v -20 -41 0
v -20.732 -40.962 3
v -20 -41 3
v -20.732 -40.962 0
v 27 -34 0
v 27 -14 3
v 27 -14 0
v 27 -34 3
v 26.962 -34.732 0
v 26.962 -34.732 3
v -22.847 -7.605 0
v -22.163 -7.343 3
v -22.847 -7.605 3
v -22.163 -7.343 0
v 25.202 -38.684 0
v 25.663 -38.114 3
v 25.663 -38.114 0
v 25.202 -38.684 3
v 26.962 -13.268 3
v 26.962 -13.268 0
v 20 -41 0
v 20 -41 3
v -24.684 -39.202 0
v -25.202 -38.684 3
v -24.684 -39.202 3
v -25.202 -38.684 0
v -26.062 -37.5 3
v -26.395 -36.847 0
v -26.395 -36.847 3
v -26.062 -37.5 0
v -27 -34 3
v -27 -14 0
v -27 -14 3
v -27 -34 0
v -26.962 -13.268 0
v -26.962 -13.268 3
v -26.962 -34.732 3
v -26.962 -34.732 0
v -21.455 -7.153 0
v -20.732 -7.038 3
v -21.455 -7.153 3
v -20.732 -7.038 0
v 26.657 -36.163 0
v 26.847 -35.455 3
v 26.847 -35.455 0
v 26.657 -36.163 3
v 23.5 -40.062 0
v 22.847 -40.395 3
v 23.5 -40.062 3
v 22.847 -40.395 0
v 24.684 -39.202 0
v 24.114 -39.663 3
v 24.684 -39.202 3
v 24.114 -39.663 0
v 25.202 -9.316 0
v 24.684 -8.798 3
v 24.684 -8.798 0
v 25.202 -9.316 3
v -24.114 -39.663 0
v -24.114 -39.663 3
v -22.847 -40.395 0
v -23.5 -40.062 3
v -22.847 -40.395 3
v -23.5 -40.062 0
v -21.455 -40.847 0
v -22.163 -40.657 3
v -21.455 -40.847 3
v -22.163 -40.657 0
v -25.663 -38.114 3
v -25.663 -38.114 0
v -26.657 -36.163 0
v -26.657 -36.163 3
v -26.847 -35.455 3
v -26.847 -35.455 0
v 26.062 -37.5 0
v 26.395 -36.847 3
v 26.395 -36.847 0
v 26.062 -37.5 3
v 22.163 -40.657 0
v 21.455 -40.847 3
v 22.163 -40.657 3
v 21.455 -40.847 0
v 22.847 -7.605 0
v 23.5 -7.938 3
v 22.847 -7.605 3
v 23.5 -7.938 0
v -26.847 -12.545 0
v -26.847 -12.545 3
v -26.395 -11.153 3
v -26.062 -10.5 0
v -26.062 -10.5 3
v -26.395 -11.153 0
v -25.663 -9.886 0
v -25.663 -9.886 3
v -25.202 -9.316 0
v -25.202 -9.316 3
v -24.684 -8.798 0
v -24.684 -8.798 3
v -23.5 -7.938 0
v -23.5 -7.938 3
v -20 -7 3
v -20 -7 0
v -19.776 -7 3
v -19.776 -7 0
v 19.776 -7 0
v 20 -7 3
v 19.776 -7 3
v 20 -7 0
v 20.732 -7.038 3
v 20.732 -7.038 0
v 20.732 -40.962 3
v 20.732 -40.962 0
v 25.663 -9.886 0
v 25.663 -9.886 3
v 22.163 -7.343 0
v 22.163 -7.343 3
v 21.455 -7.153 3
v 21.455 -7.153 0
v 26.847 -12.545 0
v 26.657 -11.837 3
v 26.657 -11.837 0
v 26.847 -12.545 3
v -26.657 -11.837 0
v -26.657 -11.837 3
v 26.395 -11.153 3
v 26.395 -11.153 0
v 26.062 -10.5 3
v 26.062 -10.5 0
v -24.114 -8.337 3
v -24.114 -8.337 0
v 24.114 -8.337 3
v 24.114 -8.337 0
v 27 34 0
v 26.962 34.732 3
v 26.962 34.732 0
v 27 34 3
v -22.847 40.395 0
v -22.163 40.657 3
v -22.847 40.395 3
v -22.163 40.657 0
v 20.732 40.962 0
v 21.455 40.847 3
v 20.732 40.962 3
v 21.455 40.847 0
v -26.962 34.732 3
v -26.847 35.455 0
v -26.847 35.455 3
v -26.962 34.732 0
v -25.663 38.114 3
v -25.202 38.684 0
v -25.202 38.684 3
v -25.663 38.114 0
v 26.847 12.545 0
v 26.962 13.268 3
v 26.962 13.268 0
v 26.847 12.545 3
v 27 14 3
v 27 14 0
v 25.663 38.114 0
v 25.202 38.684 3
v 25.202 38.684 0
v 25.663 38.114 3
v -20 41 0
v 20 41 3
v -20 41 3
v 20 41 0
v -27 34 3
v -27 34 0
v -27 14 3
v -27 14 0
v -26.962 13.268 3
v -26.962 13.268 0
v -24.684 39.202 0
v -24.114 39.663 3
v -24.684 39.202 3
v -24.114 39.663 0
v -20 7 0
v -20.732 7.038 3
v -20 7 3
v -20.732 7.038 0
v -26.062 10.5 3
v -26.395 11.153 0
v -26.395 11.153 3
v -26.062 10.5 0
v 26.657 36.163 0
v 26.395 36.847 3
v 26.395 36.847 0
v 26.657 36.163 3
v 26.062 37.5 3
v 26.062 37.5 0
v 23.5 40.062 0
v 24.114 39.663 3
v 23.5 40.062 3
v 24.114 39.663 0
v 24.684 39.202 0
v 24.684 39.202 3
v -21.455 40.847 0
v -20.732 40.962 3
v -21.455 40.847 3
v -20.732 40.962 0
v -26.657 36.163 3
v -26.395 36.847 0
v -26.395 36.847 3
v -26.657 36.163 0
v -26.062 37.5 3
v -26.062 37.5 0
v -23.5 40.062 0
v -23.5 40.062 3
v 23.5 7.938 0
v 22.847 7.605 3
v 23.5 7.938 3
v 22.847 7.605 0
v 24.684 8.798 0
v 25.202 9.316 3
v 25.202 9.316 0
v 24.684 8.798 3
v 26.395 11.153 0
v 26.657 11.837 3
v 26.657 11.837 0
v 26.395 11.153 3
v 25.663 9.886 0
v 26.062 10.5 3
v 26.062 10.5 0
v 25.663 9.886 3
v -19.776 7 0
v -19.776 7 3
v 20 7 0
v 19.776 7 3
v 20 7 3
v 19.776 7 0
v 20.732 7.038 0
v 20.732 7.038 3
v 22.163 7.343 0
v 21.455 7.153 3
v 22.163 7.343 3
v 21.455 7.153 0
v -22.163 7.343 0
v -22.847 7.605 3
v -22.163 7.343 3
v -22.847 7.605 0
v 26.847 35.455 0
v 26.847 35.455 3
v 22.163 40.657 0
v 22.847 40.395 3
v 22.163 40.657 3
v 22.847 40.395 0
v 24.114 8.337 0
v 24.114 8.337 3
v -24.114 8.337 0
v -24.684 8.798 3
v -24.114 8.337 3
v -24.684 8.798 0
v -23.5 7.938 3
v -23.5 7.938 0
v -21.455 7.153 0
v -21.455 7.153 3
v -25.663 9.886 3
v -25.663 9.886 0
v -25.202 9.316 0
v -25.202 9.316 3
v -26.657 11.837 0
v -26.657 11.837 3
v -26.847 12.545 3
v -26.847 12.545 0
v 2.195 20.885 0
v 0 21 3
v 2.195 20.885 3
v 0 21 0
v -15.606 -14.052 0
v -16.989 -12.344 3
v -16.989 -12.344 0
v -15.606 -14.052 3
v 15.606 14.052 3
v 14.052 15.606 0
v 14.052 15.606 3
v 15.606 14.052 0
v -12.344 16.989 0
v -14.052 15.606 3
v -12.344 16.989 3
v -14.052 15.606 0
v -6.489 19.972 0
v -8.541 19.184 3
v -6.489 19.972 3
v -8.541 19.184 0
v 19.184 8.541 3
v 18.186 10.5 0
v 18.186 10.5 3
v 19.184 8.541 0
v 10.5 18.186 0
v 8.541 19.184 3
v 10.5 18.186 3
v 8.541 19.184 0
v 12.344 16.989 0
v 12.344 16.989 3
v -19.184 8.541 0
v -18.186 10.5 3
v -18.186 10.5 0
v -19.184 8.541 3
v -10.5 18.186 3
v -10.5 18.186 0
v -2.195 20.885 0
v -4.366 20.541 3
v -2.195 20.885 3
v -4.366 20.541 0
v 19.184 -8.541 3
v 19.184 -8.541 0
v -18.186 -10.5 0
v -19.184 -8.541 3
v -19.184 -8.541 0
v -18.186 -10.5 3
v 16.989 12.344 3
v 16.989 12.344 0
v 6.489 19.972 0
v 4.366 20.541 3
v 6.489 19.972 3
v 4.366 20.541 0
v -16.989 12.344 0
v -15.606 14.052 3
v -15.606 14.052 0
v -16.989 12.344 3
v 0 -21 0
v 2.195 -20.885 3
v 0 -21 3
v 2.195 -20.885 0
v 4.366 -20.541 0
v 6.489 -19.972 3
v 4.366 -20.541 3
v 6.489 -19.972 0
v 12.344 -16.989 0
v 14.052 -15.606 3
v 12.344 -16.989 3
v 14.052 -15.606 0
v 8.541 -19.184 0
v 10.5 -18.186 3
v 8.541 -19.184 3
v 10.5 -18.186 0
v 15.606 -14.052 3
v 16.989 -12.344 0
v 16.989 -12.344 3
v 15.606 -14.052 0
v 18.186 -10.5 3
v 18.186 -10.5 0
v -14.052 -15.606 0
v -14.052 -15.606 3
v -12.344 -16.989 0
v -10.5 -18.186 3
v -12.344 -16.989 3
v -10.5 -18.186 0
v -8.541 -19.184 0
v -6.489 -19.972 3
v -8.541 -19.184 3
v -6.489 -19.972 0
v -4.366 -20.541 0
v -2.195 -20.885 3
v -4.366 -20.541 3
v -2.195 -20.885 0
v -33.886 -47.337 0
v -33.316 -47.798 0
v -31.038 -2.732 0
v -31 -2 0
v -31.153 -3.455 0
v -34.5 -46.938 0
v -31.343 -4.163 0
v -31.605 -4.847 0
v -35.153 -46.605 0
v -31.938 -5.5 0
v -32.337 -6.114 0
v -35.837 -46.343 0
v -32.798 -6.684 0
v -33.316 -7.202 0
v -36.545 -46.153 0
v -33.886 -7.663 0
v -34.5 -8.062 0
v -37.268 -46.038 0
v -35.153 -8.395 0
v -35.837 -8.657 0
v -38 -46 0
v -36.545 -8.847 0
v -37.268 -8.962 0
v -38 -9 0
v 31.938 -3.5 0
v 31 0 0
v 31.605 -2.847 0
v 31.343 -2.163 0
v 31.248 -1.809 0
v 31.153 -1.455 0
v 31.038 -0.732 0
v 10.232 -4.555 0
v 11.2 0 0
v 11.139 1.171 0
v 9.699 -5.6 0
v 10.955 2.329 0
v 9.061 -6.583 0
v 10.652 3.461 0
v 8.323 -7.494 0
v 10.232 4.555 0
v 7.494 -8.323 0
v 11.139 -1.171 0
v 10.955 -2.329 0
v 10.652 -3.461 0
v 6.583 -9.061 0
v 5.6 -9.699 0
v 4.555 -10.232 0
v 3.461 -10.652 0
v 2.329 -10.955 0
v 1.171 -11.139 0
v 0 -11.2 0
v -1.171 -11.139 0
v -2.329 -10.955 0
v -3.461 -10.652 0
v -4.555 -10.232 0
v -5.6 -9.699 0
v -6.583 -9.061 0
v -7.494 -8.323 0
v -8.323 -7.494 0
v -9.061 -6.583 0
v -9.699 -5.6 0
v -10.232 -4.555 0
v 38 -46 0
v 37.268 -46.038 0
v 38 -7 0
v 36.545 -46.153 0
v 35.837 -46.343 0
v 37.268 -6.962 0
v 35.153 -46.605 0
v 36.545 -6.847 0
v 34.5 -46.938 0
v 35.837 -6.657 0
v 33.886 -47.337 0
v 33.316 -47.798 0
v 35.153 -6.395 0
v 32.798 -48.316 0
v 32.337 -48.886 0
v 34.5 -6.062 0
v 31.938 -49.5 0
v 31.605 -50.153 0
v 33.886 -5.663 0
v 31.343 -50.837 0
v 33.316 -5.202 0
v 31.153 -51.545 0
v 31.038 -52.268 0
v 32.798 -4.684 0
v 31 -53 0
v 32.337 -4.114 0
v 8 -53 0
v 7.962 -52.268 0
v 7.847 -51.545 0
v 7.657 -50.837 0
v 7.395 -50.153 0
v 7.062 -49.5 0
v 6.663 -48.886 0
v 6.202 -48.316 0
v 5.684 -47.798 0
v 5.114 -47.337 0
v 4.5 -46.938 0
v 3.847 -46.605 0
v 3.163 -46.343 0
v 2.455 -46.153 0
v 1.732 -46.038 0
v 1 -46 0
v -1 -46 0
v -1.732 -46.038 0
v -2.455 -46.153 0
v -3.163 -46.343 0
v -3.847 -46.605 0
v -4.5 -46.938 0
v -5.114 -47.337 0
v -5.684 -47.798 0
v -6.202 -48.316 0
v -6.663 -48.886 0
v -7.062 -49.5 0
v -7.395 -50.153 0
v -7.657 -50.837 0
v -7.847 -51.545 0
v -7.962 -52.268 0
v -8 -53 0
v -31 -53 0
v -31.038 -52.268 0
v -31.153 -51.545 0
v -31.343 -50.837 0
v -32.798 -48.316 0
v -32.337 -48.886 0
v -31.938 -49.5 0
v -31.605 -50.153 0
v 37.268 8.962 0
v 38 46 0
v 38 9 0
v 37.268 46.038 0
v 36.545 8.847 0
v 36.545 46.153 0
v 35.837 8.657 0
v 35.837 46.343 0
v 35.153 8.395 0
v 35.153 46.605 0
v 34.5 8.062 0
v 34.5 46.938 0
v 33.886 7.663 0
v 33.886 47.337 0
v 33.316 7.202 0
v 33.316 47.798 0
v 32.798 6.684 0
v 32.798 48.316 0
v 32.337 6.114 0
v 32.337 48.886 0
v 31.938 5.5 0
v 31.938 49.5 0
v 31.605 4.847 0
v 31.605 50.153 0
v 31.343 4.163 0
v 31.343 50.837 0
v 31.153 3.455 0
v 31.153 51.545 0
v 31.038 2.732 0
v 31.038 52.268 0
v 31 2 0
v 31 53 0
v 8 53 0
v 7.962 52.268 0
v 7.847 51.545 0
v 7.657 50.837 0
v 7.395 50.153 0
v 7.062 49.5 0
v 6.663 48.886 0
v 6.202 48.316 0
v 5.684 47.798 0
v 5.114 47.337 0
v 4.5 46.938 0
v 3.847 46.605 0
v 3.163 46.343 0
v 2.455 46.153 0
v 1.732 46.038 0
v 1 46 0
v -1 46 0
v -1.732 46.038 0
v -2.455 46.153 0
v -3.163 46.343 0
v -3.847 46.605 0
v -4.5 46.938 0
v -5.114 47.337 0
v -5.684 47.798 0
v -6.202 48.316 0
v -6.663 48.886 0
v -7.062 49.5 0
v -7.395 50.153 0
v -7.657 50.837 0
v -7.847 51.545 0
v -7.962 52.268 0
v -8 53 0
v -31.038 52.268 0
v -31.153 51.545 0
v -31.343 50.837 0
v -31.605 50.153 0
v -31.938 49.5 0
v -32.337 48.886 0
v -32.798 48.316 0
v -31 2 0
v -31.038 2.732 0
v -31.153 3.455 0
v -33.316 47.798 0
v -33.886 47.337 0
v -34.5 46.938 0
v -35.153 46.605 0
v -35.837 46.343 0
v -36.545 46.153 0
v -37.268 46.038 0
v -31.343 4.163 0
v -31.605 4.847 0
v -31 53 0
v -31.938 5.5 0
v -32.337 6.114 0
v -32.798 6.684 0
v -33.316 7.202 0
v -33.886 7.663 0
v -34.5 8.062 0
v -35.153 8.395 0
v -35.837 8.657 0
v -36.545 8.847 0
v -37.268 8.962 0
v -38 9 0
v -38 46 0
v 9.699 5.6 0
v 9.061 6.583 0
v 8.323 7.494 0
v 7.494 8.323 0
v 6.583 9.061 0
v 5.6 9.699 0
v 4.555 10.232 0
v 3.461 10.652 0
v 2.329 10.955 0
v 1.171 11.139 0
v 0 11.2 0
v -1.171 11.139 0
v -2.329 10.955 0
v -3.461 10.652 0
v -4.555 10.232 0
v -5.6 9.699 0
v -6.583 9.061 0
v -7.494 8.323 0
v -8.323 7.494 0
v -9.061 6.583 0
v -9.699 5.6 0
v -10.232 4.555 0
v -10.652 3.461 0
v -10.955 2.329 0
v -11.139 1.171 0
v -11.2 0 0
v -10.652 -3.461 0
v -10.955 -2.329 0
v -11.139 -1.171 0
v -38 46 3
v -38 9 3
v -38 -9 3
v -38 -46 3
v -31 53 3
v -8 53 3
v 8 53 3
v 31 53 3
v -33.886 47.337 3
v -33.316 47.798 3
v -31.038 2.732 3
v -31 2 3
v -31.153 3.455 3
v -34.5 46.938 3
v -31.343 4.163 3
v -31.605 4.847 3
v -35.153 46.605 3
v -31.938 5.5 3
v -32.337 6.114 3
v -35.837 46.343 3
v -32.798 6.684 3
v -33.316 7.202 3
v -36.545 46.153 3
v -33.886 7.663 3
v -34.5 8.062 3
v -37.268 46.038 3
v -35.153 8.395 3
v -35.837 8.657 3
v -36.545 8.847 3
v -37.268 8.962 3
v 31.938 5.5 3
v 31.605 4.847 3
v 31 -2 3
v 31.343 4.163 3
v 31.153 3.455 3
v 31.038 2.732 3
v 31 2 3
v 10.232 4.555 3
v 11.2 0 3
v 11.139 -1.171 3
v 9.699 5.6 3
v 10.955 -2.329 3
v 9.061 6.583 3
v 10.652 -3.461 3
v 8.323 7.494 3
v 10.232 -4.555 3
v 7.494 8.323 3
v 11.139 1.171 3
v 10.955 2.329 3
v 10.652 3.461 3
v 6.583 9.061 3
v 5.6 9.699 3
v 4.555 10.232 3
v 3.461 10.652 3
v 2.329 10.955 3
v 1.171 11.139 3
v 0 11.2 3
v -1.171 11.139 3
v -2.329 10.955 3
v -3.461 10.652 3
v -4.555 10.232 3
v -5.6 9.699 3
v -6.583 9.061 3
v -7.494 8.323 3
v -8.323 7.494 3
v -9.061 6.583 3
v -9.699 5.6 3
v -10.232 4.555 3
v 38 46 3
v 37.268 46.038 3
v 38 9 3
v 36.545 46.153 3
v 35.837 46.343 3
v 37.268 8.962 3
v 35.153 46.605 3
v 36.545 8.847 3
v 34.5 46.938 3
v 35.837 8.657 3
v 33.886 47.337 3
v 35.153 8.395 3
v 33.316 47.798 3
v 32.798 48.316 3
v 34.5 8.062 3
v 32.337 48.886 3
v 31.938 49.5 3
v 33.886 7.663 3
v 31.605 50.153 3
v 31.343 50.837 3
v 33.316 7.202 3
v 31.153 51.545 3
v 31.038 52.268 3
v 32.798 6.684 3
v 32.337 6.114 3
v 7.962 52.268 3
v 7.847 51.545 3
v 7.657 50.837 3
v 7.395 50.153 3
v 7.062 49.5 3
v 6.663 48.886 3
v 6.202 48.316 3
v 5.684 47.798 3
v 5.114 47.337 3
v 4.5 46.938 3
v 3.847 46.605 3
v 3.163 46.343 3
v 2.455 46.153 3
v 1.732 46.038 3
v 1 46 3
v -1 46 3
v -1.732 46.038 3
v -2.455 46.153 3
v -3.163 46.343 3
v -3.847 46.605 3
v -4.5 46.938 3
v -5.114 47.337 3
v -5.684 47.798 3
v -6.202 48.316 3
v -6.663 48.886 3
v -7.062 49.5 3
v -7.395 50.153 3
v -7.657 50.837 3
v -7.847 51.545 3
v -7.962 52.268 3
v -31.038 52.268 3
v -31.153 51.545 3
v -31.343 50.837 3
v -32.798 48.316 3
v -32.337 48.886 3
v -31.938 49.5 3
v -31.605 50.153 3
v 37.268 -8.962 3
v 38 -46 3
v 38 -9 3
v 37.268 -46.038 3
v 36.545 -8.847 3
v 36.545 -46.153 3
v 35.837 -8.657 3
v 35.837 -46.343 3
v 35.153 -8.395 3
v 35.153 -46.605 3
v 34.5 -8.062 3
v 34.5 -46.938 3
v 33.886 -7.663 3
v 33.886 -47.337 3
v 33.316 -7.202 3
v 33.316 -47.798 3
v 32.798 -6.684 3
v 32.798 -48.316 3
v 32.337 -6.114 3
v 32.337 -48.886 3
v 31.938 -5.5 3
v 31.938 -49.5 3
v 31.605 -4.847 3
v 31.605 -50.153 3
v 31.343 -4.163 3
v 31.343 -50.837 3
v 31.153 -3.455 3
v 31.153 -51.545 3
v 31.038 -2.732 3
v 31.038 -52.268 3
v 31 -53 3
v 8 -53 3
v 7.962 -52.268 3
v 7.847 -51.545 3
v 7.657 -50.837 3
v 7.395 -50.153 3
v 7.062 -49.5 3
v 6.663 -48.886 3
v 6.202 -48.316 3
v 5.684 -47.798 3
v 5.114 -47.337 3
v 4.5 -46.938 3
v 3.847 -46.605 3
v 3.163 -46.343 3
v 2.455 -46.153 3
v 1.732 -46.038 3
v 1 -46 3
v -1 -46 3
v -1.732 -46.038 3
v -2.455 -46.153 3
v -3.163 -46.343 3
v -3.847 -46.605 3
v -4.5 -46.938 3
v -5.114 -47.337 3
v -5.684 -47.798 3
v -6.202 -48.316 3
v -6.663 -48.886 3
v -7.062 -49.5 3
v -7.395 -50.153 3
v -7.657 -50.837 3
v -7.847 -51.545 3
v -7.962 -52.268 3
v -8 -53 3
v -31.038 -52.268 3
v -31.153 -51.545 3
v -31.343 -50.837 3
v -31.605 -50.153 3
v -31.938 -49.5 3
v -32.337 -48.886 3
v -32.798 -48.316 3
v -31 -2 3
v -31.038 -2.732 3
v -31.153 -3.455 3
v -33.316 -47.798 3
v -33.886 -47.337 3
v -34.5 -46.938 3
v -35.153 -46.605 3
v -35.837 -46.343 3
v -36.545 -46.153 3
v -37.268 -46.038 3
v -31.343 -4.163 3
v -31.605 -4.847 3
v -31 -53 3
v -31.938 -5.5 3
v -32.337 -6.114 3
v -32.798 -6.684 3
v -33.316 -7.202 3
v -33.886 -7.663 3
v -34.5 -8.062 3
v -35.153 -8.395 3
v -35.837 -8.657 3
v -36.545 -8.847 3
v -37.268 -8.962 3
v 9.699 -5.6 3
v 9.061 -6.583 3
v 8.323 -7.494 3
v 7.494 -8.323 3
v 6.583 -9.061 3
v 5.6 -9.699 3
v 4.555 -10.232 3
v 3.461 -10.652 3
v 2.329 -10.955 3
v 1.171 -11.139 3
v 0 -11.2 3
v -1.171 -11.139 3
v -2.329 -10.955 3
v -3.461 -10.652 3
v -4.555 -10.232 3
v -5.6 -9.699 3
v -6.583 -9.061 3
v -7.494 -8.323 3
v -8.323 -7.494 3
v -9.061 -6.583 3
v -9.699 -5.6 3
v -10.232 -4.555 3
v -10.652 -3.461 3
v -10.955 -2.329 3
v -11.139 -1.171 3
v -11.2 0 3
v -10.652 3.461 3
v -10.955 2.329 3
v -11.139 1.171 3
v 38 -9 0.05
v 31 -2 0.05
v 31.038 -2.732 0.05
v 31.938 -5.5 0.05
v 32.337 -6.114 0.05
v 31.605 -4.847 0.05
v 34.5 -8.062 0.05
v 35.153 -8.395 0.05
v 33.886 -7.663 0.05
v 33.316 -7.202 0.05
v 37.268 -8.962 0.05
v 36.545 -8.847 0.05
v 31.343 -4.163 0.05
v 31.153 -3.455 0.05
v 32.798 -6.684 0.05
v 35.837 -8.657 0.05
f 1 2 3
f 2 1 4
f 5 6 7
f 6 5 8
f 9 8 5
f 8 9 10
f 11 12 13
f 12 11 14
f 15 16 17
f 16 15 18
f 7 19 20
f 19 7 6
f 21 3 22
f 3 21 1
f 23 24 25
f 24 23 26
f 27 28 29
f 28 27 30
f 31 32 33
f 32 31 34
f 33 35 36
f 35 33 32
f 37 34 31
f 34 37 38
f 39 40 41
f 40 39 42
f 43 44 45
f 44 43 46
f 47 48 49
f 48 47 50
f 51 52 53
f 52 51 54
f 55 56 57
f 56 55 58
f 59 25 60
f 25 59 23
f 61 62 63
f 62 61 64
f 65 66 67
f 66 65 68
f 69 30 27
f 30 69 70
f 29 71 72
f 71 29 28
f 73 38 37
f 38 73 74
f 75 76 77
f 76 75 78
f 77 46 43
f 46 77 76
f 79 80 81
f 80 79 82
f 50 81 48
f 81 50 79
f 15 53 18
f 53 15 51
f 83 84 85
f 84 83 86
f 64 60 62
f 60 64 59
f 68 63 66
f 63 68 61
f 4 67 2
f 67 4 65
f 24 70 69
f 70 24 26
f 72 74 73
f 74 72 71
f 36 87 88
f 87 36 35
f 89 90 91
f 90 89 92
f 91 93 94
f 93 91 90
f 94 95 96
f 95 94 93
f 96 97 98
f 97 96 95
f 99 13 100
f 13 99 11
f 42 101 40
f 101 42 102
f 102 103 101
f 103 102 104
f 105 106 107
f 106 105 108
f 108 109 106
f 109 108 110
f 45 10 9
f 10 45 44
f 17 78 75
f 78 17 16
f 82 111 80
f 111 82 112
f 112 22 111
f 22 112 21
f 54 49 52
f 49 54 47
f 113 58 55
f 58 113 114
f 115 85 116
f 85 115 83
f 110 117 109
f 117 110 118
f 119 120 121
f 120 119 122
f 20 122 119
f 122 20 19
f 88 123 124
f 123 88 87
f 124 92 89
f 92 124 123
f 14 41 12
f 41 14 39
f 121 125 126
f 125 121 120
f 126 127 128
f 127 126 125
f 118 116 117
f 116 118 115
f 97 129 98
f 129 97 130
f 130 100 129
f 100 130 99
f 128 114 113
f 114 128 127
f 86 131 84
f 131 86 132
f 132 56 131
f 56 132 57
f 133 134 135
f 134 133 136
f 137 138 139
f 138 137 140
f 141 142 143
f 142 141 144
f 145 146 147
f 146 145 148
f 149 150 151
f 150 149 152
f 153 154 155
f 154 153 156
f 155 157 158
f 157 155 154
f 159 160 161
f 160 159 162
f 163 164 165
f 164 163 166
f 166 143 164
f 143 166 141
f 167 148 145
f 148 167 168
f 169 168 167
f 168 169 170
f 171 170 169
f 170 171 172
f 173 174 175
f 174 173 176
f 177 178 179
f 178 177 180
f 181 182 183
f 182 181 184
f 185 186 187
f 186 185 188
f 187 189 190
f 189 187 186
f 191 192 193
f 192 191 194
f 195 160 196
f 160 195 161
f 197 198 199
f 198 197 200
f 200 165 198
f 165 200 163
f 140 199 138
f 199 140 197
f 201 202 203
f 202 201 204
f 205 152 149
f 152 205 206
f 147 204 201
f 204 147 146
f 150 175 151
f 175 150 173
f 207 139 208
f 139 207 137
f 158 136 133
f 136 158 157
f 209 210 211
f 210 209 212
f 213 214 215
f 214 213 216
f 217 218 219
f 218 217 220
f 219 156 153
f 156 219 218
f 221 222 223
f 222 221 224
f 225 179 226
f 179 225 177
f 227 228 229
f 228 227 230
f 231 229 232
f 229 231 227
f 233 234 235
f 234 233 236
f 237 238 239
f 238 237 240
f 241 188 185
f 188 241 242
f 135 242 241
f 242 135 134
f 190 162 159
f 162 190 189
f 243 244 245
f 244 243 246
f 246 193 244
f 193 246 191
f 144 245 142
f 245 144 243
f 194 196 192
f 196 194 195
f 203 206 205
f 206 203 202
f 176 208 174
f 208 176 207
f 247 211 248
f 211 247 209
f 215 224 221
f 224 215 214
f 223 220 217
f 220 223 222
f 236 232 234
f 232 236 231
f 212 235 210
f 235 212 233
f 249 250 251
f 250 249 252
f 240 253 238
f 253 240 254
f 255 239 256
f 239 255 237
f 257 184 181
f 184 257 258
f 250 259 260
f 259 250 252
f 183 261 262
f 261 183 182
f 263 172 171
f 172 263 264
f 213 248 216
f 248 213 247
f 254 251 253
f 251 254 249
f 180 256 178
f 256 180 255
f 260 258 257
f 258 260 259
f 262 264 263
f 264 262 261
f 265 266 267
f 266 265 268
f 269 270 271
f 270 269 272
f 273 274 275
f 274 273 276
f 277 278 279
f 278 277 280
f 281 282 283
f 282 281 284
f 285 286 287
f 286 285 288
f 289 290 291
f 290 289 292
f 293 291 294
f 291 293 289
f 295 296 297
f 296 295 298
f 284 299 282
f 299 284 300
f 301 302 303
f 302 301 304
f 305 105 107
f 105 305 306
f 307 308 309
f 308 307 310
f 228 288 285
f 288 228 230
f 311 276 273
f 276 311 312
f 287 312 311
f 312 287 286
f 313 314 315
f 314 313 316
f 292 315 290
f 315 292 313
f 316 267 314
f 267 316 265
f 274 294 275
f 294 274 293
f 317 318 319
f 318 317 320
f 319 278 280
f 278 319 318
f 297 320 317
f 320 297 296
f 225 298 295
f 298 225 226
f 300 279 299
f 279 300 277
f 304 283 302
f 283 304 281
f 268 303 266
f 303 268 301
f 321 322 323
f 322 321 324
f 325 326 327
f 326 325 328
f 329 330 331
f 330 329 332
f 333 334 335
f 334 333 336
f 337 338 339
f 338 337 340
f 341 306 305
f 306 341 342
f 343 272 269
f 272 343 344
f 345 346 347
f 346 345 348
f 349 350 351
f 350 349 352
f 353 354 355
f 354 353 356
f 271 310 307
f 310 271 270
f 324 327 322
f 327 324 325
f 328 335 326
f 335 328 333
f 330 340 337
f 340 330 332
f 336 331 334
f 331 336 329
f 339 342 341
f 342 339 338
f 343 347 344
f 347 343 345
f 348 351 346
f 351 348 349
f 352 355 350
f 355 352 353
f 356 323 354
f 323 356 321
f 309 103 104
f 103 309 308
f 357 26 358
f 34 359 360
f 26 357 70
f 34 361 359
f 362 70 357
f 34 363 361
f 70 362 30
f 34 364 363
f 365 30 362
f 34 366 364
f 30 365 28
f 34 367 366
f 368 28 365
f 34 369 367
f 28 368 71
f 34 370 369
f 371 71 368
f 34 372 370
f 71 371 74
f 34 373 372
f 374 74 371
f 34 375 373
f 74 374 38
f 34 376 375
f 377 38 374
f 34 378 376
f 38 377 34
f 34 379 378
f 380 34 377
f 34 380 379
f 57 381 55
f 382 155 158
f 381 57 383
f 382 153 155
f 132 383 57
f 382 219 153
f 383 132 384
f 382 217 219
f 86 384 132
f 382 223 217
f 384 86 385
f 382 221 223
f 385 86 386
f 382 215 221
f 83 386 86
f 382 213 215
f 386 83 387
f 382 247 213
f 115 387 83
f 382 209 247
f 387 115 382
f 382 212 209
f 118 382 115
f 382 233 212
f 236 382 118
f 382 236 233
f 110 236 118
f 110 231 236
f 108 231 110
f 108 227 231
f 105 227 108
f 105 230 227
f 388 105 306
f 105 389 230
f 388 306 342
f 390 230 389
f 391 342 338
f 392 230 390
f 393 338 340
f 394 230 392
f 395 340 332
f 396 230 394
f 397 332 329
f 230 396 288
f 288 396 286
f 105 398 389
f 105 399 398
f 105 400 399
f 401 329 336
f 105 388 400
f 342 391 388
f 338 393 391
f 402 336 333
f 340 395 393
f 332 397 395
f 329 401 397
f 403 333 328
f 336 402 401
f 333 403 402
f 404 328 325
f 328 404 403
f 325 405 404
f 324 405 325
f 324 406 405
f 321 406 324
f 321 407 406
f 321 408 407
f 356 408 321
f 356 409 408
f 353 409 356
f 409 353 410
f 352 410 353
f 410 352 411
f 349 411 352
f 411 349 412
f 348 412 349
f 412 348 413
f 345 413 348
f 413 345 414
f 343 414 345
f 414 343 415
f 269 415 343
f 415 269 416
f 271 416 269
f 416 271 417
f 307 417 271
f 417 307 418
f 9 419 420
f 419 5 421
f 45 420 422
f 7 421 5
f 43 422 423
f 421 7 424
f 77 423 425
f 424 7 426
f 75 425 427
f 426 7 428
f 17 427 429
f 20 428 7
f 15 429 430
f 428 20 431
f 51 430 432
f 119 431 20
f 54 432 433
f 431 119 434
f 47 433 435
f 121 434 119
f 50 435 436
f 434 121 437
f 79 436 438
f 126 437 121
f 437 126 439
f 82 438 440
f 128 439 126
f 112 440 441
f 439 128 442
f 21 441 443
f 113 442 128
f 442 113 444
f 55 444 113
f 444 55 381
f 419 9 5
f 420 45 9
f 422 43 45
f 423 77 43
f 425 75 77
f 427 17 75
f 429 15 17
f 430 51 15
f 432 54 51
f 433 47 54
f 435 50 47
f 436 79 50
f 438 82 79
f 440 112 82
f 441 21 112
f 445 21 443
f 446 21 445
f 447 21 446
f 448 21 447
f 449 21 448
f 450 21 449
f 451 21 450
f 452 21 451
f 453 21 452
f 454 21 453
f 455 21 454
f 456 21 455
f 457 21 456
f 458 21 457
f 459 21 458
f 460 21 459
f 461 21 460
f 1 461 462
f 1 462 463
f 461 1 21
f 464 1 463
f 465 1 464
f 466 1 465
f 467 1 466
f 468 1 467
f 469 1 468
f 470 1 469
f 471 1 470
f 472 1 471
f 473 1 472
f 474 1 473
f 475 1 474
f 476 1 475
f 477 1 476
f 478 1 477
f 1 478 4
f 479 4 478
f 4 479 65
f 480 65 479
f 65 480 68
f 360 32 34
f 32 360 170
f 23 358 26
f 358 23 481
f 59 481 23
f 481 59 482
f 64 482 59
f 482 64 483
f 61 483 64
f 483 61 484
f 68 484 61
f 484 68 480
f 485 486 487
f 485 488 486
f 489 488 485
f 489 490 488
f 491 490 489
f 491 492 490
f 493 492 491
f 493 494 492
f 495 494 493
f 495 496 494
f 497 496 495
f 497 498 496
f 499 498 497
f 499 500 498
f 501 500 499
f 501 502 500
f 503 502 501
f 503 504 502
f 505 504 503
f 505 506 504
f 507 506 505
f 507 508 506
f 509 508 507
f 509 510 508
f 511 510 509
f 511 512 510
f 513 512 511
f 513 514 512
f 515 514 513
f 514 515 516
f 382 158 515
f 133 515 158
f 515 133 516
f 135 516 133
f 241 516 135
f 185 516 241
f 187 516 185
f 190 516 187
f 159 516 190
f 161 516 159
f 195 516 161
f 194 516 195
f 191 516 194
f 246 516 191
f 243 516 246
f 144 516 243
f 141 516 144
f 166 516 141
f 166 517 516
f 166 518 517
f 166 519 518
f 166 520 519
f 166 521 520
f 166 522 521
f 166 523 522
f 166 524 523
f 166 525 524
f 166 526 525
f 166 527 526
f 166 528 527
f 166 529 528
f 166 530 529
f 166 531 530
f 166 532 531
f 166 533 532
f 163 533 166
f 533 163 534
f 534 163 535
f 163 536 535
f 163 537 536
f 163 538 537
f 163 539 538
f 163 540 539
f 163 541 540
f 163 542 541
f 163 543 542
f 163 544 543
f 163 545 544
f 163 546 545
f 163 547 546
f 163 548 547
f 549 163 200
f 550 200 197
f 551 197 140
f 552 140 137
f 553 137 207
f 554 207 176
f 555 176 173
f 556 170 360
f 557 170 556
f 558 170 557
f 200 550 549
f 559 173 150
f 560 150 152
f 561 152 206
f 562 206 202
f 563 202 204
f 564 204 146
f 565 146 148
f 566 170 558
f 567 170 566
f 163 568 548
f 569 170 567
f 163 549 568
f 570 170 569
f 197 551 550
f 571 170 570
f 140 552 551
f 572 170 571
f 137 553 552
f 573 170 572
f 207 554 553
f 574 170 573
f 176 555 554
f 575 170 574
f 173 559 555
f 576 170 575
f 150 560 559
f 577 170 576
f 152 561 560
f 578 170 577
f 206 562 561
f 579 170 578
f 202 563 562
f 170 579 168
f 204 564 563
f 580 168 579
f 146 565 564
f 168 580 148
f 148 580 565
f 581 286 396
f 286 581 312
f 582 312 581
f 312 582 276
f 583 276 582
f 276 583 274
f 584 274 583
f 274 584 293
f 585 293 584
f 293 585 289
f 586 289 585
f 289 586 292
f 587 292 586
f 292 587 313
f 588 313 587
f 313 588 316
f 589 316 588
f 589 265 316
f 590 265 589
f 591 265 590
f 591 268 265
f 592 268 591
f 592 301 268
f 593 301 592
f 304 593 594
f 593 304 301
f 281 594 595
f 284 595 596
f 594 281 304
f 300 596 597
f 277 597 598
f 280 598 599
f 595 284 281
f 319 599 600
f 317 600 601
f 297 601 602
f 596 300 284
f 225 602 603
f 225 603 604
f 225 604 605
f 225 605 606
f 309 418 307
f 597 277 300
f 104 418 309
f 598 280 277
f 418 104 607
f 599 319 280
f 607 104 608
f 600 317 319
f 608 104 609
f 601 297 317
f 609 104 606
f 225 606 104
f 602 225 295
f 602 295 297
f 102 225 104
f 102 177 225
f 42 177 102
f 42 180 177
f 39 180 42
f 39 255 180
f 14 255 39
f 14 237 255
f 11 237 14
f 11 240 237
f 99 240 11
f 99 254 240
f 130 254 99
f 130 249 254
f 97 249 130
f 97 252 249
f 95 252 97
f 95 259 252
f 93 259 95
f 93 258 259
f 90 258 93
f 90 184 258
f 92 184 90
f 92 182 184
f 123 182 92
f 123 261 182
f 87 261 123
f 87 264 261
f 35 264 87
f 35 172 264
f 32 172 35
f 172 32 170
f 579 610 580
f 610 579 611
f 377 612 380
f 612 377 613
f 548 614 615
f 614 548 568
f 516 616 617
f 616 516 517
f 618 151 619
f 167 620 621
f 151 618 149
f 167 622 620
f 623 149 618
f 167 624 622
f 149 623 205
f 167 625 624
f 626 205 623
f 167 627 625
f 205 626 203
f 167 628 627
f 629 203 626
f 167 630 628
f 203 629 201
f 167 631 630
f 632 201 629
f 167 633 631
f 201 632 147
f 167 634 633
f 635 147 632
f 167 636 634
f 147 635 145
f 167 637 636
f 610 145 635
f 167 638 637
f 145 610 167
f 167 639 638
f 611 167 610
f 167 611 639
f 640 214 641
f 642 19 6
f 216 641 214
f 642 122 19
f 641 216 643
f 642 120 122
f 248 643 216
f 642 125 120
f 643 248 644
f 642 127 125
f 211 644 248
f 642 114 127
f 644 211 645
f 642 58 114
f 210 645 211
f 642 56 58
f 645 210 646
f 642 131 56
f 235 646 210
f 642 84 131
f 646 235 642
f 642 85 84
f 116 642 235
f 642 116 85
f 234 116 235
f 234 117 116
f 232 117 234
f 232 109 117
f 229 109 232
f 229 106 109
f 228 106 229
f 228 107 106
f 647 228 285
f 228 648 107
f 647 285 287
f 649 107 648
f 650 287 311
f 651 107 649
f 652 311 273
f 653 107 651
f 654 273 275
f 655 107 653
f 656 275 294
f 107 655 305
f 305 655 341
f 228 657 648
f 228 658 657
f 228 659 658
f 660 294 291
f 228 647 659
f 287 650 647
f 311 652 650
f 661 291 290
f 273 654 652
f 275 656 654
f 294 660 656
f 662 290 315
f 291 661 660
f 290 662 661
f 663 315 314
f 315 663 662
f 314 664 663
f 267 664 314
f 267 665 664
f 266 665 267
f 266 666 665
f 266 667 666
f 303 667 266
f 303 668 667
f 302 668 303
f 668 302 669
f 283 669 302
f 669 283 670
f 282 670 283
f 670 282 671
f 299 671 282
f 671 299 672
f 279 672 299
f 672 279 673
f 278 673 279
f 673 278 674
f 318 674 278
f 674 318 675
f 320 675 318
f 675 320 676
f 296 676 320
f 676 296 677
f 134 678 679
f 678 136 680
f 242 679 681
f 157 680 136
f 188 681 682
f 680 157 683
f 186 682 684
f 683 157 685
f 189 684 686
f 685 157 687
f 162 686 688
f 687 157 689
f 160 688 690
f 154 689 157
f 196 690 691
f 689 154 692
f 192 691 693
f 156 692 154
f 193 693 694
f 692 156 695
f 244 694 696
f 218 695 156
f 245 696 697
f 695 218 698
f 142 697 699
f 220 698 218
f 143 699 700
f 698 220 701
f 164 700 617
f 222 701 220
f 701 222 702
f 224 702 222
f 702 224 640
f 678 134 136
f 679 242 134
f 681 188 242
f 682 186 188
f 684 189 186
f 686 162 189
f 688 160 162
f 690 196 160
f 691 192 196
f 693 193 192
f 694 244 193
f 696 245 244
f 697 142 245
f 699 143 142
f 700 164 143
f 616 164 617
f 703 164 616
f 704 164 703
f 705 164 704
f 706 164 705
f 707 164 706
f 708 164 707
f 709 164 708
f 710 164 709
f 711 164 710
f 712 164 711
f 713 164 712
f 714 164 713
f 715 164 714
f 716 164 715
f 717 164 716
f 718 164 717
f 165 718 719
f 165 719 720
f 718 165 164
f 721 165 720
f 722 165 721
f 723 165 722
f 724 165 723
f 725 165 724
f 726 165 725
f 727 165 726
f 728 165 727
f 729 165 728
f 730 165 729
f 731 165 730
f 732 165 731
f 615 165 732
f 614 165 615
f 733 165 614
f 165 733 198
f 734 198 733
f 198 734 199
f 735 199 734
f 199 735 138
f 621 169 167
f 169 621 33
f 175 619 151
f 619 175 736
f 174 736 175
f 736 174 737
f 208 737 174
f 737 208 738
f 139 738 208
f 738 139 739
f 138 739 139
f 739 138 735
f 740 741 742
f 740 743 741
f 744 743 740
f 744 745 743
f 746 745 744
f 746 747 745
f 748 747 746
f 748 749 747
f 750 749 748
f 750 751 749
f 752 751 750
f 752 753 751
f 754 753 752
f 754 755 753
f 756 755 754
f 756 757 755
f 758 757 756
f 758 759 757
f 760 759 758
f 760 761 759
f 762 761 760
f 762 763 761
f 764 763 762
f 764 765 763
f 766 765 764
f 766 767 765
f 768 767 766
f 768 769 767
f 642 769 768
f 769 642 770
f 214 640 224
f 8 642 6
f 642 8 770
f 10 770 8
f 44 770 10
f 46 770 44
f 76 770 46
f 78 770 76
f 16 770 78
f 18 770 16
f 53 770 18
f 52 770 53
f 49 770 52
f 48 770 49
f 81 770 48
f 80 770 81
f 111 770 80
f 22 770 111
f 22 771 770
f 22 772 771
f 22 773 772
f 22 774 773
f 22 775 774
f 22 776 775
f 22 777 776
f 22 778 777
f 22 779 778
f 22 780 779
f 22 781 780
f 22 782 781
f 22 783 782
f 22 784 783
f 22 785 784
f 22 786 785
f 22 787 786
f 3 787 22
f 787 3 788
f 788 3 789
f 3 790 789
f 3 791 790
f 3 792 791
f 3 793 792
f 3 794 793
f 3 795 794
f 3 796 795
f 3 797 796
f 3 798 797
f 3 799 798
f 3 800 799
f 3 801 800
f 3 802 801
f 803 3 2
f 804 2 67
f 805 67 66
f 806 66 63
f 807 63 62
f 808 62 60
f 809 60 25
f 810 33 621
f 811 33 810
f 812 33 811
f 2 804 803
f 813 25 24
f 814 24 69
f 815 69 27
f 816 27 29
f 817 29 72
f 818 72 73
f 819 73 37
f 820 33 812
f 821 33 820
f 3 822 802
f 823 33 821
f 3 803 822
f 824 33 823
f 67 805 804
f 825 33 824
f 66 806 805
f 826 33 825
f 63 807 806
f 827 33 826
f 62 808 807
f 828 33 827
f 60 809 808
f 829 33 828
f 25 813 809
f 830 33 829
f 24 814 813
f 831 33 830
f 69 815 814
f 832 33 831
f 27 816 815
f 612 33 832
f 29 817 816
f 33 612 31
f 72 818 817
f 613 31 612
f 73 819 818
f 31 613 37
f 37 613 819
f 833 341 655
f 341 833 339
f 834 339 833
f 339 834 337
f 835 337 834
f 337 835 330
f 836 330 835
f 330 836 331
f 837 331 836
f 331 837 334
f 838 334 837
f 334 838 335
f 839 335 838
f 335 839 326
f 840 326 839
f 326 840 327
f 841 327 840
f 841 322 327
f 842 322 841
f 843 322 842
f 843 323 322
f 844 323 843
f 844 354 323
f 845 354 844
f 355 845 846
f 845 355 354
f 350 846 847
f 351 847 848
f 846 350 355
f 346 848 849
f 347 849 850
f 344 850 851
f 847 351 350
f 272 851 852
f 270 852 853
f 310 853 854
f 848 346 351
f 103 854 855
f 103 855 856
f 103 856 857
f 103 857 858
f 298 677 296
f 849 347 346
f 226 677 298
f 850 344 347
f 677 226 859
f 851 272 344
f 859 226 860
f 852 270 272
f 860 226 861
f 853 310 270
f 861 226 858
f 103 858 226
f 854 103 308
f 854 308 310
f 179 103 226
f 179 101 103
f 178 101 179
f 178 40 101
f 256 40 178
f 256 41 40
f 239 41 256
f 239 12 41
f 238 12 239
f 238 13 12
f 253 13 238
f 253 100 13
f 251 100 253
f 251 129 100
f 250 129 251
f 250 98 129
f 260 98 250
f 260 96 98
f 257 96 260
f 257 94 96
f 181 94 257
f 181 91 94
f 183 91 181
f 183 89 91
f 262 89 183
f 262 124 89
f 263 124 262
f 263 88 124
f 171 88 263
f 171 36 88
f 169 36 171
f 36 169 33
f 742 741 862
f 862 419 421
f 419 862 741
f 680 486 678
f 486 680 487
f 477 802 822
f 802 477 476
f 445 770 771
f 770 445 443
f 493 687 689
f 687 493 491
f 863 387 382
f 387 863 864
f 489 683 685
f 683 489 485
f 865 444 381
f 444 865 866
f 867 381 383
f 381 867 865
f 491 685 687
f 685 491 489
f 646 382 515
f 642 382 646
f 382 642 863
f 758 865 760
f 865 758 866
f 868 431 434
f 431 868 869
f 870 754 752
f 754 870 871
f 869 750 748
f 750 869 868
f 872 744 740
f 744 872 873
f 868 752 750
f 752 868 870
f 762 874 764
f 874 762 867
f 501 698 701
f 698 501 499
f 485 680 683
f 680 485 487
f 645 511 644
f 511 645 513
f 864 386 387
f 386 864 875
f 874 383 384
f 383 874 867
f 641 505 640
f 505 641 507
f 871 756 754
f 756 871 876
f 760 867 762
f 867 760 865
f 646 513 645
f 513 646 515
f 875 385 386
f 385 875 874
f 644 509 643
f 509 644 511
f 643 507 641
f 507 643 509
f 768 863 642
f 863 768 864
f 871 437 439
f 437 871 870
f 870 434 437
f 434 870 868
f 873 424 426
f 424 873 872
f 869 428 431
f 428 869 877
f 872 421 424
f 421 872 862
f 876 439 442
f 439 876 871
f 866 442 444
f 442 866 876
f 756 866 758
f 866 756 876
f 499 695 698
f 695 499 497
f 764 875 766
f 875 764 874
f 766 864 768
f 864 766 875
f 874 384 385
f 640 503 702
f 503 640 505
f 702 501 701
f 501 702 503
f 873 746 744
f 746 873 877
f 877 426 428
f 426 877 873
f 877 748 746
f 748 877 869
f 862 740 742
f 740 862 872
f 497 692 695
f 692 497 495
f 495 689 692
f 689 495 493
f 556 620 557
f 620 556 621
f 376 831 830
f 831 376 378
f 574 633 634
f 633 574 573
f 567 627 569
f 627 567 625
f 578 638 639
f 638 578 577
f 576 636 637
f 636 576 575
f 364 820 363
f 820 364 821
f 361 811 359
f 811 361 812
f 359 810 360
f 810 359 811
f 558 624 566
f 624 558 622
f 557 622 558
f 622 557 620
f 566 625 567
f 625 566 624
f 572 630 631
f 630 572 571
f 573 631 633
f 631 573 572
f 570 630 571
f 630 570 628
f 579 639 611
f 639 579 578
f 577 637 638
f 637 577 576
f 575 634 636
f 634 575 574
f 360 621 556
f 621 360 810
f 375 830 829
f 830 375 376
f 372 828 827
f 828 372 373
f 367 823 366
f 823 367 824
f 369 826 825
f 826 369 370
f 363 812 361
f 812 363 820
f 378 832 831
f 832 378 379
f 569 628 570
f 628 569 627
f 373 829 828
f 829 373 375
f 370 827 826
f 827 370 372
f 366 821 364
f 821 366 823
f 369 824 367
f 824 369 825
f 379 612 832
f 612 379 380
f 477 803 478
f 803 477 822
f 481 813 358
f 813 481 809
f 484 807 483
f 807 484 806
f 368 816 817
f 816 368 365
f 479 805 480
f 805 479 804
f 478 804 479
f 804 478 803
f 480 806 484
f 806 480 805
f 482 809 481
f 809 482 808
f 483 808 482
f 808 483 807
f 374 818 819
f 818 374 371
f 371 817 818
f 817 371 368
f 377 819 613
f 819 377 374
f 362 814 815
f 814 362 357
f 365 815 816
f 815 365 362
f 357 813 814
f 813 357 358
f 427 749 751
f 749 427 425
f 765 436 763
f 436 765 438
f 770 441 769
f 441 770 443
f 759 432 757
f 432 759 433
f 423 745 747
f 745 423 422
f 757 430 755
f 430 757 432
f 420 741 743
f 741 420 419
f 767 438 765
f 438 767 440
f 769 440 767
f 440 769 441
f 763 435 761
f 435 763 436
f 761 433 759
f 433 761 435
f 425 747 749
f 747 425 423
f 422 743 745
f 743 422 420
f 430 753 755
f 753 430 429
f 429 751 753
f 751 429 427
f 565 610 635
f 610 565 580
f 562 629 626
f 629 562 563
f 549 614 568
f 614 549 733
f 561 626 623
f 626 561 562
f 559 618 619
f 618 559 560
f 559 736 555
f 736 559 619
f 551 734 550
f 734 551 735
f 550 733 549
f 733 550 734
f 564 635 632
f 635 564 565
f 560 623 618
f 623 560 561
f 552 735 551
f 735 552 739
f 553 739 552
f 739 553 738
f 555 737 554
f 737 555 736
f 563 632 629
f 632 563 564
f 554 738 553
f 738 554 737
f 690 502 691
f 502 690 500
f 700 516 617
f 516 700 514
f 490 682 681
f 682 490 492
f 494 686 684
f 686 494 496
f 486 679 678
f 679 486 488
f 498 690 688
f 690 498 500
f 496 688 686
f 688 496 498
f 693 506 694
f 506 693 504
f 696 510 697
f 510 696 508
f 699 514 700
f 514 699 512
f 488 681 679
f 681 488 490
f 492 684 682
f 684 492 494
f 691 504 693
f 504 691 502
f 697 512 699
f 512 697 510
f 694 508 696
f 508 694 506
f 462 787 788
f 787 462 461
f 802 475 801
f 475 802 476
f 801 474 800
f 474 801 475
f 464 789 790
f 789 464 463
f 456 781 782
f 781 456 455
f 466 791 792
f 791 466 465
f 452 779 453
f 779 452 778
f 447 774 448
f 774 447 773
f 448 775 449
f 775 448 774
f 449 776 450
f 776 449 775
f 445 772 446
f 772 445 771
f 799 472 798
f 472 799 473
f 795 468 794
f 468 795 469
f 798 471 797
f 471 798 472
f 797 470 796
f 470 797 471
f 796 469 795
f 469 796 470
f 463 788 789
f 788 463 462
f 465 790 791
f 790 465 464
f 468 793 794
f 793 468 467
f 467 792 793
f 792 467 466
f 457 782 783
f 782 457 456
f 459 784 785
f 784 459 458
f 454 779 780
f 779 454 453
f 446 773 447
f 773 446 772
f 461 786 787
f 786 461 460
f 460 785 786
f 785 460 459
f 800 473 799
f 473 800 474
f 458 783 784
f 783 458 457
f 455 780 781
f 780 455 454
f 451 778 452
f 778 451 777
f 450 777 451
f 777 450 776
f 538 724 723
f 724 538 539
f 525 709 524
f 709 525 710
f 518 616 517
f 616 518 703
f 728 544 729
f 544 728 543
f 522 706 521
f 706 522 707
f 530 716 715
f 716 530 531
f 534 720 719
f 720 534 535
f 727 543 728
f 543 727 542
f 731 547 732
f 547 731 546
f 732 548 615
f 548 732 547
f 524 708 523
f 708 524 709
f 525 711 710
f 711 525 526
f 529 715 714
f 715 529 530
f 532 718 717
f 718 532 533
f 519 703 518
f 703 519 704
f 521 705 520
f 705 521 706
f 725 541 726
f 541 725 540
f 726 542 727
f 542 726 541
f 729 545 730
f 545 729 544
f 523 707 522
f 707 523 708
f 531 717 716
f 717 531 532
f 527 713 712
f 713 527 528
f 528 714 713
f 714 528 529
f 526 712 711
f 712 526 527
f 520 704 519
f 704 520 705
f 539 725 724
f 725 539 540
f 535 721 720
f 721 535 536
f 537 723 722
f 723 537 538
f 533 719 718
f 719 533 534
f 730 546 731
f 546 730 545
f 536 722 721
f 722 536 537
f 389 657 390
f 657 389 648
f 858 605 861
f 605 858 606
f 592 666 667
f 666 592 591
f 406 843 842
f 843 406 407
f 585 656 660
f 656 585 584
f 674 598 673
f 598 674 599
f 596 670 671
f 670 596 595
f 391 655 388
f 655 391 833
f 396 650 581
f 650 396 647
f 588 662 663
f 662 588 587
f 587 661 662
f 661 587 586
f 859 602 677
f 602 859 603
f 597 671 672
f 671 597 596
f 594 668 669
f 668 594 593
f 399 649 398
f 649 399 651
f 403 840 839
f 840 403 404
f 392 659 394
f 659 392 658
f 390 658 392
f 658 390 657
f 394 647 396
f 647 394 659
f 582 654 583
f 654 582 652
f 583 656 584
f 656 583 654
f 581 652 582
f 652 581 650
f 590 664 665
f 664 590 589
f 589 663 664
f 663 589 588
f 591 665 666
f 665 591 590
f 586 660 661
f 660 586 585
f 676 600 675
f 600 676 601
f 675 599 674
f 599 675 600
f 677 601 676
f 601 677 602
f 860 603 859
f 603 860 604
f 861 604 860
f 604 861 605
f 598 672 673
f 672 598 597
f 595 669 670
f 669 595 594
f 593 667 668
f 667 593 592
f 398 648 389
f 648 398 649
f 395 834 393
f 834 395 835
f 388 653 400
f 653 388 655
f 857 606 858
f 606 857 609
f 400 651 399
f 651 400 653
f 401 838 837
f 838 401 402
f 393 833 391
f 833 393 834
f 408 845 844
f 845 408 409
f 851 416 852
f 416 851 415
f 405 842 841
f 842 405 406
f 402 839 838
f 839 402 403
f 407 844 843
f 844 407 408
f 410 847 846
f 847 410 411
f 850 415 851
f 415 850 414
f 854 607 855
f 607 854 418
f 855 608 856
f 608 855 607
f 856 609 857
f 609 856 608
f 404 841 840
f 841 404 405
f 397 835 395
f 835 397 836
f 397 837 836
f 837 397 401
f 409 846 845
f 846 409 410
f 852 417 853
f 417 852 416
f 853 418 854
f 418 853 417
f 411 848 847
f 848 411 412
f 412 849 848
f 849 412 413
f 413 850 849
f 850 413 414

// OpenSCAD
/* large-filler-bin.scad
 *
 * Copyright (C) Robert B. Ross, 2016
 *
 * This software is released under the Creative Commons
 * Attribution-ShareAlike 4.0 International Public License.
 */

include <./bintools.scad>

/*
 * See above for description of locations variable
 *
 * Dimensions (from Kariko83)
 *   46.5mm tall
 *   48.6mm tall with legs
 *   109.25mm wide
 *   80mm length
 */

rad=7;

difference() {
   roundBoxBottom(xDim=76,yDim=106,ht=3);

   hull() {
      translate([76/2,2,-0.05]) cylinder(r=rad,h=3.1);
      translate([76/2,-2,0.05]) cylinder(r=rad,h=3.1);
   }
   hull() {
      translate([-76/2,2,-0.05]) cylinder(r=rad,h=3.1);
      translate([-76/2,-2,-0.05]) cylinder(r=rad,h=3.1);
   }

   /* corners */
   translate([-76/2,-106/2,-0.05]) cylinder(r=rad,h=3.1);
   translate([76/2,-106/2,-0.05]) cylinder(r=rad,h=3.1);
   translate([-76/2,106/2,-0.05]) cylinder(r=rad,h=3.1);
   translate([76/2,106/2,-0.05]) cylinder(r=rad,h=3.1);

   hull() {
      translate([-1,-106/2,-0.05]) cylinder(r=rad,h=3.1);
      translate([1,-106/2,-0.05]) cylinder(r=rad,h=3.1);
   }
   hull() {
      translate([-1,106/2,-0.05]) cylinder(r=rad,h=3.1);
      translate([1,106/2,-0.05]) cylinder(r=rad,h=3.1);
   }

   /* big cut-outs */
   difference() {
      union() {
         hull() {
            translate([20,-34,-0.05]) cylinder(r=rad,h=3.1);
            translate([20,-14,-0.05]) cylinder(r=rad,h=3.1);
            translate([-20,-34,-0.05]) cylinder(r=rad,h=3.1);
            translate([-20,-14,-0.05]) cylinder(r=rad,h=3.1);
         }
      
         hull() {
            translate([20,34,-0.05]) cylinder(r=rad,h=3.1);
            translate([20,14,-0.05]) cylinder(r=rad,h=3.1);
            translate([-20,34,-0.05]) cylinder(r=rad,h=3.1);
            translate([-20,14,-0.05]) cylinder(r=rad,h=3.1);
         }
      }
      translate([0,0,-0.1]) cylinder(r=3*rad,h=3.2);
   }
   translate([0,0,-0.05]) cylinder(r=rad*1.6,h=3.1);
}

/*
 * Local variables:
 *  mode: C
 *  c-indent-level: 3
 *  c-basic-offset: 3
 * End:
 *
 * vim: ts=8 sts=3 sw=3 expandtab
 */
